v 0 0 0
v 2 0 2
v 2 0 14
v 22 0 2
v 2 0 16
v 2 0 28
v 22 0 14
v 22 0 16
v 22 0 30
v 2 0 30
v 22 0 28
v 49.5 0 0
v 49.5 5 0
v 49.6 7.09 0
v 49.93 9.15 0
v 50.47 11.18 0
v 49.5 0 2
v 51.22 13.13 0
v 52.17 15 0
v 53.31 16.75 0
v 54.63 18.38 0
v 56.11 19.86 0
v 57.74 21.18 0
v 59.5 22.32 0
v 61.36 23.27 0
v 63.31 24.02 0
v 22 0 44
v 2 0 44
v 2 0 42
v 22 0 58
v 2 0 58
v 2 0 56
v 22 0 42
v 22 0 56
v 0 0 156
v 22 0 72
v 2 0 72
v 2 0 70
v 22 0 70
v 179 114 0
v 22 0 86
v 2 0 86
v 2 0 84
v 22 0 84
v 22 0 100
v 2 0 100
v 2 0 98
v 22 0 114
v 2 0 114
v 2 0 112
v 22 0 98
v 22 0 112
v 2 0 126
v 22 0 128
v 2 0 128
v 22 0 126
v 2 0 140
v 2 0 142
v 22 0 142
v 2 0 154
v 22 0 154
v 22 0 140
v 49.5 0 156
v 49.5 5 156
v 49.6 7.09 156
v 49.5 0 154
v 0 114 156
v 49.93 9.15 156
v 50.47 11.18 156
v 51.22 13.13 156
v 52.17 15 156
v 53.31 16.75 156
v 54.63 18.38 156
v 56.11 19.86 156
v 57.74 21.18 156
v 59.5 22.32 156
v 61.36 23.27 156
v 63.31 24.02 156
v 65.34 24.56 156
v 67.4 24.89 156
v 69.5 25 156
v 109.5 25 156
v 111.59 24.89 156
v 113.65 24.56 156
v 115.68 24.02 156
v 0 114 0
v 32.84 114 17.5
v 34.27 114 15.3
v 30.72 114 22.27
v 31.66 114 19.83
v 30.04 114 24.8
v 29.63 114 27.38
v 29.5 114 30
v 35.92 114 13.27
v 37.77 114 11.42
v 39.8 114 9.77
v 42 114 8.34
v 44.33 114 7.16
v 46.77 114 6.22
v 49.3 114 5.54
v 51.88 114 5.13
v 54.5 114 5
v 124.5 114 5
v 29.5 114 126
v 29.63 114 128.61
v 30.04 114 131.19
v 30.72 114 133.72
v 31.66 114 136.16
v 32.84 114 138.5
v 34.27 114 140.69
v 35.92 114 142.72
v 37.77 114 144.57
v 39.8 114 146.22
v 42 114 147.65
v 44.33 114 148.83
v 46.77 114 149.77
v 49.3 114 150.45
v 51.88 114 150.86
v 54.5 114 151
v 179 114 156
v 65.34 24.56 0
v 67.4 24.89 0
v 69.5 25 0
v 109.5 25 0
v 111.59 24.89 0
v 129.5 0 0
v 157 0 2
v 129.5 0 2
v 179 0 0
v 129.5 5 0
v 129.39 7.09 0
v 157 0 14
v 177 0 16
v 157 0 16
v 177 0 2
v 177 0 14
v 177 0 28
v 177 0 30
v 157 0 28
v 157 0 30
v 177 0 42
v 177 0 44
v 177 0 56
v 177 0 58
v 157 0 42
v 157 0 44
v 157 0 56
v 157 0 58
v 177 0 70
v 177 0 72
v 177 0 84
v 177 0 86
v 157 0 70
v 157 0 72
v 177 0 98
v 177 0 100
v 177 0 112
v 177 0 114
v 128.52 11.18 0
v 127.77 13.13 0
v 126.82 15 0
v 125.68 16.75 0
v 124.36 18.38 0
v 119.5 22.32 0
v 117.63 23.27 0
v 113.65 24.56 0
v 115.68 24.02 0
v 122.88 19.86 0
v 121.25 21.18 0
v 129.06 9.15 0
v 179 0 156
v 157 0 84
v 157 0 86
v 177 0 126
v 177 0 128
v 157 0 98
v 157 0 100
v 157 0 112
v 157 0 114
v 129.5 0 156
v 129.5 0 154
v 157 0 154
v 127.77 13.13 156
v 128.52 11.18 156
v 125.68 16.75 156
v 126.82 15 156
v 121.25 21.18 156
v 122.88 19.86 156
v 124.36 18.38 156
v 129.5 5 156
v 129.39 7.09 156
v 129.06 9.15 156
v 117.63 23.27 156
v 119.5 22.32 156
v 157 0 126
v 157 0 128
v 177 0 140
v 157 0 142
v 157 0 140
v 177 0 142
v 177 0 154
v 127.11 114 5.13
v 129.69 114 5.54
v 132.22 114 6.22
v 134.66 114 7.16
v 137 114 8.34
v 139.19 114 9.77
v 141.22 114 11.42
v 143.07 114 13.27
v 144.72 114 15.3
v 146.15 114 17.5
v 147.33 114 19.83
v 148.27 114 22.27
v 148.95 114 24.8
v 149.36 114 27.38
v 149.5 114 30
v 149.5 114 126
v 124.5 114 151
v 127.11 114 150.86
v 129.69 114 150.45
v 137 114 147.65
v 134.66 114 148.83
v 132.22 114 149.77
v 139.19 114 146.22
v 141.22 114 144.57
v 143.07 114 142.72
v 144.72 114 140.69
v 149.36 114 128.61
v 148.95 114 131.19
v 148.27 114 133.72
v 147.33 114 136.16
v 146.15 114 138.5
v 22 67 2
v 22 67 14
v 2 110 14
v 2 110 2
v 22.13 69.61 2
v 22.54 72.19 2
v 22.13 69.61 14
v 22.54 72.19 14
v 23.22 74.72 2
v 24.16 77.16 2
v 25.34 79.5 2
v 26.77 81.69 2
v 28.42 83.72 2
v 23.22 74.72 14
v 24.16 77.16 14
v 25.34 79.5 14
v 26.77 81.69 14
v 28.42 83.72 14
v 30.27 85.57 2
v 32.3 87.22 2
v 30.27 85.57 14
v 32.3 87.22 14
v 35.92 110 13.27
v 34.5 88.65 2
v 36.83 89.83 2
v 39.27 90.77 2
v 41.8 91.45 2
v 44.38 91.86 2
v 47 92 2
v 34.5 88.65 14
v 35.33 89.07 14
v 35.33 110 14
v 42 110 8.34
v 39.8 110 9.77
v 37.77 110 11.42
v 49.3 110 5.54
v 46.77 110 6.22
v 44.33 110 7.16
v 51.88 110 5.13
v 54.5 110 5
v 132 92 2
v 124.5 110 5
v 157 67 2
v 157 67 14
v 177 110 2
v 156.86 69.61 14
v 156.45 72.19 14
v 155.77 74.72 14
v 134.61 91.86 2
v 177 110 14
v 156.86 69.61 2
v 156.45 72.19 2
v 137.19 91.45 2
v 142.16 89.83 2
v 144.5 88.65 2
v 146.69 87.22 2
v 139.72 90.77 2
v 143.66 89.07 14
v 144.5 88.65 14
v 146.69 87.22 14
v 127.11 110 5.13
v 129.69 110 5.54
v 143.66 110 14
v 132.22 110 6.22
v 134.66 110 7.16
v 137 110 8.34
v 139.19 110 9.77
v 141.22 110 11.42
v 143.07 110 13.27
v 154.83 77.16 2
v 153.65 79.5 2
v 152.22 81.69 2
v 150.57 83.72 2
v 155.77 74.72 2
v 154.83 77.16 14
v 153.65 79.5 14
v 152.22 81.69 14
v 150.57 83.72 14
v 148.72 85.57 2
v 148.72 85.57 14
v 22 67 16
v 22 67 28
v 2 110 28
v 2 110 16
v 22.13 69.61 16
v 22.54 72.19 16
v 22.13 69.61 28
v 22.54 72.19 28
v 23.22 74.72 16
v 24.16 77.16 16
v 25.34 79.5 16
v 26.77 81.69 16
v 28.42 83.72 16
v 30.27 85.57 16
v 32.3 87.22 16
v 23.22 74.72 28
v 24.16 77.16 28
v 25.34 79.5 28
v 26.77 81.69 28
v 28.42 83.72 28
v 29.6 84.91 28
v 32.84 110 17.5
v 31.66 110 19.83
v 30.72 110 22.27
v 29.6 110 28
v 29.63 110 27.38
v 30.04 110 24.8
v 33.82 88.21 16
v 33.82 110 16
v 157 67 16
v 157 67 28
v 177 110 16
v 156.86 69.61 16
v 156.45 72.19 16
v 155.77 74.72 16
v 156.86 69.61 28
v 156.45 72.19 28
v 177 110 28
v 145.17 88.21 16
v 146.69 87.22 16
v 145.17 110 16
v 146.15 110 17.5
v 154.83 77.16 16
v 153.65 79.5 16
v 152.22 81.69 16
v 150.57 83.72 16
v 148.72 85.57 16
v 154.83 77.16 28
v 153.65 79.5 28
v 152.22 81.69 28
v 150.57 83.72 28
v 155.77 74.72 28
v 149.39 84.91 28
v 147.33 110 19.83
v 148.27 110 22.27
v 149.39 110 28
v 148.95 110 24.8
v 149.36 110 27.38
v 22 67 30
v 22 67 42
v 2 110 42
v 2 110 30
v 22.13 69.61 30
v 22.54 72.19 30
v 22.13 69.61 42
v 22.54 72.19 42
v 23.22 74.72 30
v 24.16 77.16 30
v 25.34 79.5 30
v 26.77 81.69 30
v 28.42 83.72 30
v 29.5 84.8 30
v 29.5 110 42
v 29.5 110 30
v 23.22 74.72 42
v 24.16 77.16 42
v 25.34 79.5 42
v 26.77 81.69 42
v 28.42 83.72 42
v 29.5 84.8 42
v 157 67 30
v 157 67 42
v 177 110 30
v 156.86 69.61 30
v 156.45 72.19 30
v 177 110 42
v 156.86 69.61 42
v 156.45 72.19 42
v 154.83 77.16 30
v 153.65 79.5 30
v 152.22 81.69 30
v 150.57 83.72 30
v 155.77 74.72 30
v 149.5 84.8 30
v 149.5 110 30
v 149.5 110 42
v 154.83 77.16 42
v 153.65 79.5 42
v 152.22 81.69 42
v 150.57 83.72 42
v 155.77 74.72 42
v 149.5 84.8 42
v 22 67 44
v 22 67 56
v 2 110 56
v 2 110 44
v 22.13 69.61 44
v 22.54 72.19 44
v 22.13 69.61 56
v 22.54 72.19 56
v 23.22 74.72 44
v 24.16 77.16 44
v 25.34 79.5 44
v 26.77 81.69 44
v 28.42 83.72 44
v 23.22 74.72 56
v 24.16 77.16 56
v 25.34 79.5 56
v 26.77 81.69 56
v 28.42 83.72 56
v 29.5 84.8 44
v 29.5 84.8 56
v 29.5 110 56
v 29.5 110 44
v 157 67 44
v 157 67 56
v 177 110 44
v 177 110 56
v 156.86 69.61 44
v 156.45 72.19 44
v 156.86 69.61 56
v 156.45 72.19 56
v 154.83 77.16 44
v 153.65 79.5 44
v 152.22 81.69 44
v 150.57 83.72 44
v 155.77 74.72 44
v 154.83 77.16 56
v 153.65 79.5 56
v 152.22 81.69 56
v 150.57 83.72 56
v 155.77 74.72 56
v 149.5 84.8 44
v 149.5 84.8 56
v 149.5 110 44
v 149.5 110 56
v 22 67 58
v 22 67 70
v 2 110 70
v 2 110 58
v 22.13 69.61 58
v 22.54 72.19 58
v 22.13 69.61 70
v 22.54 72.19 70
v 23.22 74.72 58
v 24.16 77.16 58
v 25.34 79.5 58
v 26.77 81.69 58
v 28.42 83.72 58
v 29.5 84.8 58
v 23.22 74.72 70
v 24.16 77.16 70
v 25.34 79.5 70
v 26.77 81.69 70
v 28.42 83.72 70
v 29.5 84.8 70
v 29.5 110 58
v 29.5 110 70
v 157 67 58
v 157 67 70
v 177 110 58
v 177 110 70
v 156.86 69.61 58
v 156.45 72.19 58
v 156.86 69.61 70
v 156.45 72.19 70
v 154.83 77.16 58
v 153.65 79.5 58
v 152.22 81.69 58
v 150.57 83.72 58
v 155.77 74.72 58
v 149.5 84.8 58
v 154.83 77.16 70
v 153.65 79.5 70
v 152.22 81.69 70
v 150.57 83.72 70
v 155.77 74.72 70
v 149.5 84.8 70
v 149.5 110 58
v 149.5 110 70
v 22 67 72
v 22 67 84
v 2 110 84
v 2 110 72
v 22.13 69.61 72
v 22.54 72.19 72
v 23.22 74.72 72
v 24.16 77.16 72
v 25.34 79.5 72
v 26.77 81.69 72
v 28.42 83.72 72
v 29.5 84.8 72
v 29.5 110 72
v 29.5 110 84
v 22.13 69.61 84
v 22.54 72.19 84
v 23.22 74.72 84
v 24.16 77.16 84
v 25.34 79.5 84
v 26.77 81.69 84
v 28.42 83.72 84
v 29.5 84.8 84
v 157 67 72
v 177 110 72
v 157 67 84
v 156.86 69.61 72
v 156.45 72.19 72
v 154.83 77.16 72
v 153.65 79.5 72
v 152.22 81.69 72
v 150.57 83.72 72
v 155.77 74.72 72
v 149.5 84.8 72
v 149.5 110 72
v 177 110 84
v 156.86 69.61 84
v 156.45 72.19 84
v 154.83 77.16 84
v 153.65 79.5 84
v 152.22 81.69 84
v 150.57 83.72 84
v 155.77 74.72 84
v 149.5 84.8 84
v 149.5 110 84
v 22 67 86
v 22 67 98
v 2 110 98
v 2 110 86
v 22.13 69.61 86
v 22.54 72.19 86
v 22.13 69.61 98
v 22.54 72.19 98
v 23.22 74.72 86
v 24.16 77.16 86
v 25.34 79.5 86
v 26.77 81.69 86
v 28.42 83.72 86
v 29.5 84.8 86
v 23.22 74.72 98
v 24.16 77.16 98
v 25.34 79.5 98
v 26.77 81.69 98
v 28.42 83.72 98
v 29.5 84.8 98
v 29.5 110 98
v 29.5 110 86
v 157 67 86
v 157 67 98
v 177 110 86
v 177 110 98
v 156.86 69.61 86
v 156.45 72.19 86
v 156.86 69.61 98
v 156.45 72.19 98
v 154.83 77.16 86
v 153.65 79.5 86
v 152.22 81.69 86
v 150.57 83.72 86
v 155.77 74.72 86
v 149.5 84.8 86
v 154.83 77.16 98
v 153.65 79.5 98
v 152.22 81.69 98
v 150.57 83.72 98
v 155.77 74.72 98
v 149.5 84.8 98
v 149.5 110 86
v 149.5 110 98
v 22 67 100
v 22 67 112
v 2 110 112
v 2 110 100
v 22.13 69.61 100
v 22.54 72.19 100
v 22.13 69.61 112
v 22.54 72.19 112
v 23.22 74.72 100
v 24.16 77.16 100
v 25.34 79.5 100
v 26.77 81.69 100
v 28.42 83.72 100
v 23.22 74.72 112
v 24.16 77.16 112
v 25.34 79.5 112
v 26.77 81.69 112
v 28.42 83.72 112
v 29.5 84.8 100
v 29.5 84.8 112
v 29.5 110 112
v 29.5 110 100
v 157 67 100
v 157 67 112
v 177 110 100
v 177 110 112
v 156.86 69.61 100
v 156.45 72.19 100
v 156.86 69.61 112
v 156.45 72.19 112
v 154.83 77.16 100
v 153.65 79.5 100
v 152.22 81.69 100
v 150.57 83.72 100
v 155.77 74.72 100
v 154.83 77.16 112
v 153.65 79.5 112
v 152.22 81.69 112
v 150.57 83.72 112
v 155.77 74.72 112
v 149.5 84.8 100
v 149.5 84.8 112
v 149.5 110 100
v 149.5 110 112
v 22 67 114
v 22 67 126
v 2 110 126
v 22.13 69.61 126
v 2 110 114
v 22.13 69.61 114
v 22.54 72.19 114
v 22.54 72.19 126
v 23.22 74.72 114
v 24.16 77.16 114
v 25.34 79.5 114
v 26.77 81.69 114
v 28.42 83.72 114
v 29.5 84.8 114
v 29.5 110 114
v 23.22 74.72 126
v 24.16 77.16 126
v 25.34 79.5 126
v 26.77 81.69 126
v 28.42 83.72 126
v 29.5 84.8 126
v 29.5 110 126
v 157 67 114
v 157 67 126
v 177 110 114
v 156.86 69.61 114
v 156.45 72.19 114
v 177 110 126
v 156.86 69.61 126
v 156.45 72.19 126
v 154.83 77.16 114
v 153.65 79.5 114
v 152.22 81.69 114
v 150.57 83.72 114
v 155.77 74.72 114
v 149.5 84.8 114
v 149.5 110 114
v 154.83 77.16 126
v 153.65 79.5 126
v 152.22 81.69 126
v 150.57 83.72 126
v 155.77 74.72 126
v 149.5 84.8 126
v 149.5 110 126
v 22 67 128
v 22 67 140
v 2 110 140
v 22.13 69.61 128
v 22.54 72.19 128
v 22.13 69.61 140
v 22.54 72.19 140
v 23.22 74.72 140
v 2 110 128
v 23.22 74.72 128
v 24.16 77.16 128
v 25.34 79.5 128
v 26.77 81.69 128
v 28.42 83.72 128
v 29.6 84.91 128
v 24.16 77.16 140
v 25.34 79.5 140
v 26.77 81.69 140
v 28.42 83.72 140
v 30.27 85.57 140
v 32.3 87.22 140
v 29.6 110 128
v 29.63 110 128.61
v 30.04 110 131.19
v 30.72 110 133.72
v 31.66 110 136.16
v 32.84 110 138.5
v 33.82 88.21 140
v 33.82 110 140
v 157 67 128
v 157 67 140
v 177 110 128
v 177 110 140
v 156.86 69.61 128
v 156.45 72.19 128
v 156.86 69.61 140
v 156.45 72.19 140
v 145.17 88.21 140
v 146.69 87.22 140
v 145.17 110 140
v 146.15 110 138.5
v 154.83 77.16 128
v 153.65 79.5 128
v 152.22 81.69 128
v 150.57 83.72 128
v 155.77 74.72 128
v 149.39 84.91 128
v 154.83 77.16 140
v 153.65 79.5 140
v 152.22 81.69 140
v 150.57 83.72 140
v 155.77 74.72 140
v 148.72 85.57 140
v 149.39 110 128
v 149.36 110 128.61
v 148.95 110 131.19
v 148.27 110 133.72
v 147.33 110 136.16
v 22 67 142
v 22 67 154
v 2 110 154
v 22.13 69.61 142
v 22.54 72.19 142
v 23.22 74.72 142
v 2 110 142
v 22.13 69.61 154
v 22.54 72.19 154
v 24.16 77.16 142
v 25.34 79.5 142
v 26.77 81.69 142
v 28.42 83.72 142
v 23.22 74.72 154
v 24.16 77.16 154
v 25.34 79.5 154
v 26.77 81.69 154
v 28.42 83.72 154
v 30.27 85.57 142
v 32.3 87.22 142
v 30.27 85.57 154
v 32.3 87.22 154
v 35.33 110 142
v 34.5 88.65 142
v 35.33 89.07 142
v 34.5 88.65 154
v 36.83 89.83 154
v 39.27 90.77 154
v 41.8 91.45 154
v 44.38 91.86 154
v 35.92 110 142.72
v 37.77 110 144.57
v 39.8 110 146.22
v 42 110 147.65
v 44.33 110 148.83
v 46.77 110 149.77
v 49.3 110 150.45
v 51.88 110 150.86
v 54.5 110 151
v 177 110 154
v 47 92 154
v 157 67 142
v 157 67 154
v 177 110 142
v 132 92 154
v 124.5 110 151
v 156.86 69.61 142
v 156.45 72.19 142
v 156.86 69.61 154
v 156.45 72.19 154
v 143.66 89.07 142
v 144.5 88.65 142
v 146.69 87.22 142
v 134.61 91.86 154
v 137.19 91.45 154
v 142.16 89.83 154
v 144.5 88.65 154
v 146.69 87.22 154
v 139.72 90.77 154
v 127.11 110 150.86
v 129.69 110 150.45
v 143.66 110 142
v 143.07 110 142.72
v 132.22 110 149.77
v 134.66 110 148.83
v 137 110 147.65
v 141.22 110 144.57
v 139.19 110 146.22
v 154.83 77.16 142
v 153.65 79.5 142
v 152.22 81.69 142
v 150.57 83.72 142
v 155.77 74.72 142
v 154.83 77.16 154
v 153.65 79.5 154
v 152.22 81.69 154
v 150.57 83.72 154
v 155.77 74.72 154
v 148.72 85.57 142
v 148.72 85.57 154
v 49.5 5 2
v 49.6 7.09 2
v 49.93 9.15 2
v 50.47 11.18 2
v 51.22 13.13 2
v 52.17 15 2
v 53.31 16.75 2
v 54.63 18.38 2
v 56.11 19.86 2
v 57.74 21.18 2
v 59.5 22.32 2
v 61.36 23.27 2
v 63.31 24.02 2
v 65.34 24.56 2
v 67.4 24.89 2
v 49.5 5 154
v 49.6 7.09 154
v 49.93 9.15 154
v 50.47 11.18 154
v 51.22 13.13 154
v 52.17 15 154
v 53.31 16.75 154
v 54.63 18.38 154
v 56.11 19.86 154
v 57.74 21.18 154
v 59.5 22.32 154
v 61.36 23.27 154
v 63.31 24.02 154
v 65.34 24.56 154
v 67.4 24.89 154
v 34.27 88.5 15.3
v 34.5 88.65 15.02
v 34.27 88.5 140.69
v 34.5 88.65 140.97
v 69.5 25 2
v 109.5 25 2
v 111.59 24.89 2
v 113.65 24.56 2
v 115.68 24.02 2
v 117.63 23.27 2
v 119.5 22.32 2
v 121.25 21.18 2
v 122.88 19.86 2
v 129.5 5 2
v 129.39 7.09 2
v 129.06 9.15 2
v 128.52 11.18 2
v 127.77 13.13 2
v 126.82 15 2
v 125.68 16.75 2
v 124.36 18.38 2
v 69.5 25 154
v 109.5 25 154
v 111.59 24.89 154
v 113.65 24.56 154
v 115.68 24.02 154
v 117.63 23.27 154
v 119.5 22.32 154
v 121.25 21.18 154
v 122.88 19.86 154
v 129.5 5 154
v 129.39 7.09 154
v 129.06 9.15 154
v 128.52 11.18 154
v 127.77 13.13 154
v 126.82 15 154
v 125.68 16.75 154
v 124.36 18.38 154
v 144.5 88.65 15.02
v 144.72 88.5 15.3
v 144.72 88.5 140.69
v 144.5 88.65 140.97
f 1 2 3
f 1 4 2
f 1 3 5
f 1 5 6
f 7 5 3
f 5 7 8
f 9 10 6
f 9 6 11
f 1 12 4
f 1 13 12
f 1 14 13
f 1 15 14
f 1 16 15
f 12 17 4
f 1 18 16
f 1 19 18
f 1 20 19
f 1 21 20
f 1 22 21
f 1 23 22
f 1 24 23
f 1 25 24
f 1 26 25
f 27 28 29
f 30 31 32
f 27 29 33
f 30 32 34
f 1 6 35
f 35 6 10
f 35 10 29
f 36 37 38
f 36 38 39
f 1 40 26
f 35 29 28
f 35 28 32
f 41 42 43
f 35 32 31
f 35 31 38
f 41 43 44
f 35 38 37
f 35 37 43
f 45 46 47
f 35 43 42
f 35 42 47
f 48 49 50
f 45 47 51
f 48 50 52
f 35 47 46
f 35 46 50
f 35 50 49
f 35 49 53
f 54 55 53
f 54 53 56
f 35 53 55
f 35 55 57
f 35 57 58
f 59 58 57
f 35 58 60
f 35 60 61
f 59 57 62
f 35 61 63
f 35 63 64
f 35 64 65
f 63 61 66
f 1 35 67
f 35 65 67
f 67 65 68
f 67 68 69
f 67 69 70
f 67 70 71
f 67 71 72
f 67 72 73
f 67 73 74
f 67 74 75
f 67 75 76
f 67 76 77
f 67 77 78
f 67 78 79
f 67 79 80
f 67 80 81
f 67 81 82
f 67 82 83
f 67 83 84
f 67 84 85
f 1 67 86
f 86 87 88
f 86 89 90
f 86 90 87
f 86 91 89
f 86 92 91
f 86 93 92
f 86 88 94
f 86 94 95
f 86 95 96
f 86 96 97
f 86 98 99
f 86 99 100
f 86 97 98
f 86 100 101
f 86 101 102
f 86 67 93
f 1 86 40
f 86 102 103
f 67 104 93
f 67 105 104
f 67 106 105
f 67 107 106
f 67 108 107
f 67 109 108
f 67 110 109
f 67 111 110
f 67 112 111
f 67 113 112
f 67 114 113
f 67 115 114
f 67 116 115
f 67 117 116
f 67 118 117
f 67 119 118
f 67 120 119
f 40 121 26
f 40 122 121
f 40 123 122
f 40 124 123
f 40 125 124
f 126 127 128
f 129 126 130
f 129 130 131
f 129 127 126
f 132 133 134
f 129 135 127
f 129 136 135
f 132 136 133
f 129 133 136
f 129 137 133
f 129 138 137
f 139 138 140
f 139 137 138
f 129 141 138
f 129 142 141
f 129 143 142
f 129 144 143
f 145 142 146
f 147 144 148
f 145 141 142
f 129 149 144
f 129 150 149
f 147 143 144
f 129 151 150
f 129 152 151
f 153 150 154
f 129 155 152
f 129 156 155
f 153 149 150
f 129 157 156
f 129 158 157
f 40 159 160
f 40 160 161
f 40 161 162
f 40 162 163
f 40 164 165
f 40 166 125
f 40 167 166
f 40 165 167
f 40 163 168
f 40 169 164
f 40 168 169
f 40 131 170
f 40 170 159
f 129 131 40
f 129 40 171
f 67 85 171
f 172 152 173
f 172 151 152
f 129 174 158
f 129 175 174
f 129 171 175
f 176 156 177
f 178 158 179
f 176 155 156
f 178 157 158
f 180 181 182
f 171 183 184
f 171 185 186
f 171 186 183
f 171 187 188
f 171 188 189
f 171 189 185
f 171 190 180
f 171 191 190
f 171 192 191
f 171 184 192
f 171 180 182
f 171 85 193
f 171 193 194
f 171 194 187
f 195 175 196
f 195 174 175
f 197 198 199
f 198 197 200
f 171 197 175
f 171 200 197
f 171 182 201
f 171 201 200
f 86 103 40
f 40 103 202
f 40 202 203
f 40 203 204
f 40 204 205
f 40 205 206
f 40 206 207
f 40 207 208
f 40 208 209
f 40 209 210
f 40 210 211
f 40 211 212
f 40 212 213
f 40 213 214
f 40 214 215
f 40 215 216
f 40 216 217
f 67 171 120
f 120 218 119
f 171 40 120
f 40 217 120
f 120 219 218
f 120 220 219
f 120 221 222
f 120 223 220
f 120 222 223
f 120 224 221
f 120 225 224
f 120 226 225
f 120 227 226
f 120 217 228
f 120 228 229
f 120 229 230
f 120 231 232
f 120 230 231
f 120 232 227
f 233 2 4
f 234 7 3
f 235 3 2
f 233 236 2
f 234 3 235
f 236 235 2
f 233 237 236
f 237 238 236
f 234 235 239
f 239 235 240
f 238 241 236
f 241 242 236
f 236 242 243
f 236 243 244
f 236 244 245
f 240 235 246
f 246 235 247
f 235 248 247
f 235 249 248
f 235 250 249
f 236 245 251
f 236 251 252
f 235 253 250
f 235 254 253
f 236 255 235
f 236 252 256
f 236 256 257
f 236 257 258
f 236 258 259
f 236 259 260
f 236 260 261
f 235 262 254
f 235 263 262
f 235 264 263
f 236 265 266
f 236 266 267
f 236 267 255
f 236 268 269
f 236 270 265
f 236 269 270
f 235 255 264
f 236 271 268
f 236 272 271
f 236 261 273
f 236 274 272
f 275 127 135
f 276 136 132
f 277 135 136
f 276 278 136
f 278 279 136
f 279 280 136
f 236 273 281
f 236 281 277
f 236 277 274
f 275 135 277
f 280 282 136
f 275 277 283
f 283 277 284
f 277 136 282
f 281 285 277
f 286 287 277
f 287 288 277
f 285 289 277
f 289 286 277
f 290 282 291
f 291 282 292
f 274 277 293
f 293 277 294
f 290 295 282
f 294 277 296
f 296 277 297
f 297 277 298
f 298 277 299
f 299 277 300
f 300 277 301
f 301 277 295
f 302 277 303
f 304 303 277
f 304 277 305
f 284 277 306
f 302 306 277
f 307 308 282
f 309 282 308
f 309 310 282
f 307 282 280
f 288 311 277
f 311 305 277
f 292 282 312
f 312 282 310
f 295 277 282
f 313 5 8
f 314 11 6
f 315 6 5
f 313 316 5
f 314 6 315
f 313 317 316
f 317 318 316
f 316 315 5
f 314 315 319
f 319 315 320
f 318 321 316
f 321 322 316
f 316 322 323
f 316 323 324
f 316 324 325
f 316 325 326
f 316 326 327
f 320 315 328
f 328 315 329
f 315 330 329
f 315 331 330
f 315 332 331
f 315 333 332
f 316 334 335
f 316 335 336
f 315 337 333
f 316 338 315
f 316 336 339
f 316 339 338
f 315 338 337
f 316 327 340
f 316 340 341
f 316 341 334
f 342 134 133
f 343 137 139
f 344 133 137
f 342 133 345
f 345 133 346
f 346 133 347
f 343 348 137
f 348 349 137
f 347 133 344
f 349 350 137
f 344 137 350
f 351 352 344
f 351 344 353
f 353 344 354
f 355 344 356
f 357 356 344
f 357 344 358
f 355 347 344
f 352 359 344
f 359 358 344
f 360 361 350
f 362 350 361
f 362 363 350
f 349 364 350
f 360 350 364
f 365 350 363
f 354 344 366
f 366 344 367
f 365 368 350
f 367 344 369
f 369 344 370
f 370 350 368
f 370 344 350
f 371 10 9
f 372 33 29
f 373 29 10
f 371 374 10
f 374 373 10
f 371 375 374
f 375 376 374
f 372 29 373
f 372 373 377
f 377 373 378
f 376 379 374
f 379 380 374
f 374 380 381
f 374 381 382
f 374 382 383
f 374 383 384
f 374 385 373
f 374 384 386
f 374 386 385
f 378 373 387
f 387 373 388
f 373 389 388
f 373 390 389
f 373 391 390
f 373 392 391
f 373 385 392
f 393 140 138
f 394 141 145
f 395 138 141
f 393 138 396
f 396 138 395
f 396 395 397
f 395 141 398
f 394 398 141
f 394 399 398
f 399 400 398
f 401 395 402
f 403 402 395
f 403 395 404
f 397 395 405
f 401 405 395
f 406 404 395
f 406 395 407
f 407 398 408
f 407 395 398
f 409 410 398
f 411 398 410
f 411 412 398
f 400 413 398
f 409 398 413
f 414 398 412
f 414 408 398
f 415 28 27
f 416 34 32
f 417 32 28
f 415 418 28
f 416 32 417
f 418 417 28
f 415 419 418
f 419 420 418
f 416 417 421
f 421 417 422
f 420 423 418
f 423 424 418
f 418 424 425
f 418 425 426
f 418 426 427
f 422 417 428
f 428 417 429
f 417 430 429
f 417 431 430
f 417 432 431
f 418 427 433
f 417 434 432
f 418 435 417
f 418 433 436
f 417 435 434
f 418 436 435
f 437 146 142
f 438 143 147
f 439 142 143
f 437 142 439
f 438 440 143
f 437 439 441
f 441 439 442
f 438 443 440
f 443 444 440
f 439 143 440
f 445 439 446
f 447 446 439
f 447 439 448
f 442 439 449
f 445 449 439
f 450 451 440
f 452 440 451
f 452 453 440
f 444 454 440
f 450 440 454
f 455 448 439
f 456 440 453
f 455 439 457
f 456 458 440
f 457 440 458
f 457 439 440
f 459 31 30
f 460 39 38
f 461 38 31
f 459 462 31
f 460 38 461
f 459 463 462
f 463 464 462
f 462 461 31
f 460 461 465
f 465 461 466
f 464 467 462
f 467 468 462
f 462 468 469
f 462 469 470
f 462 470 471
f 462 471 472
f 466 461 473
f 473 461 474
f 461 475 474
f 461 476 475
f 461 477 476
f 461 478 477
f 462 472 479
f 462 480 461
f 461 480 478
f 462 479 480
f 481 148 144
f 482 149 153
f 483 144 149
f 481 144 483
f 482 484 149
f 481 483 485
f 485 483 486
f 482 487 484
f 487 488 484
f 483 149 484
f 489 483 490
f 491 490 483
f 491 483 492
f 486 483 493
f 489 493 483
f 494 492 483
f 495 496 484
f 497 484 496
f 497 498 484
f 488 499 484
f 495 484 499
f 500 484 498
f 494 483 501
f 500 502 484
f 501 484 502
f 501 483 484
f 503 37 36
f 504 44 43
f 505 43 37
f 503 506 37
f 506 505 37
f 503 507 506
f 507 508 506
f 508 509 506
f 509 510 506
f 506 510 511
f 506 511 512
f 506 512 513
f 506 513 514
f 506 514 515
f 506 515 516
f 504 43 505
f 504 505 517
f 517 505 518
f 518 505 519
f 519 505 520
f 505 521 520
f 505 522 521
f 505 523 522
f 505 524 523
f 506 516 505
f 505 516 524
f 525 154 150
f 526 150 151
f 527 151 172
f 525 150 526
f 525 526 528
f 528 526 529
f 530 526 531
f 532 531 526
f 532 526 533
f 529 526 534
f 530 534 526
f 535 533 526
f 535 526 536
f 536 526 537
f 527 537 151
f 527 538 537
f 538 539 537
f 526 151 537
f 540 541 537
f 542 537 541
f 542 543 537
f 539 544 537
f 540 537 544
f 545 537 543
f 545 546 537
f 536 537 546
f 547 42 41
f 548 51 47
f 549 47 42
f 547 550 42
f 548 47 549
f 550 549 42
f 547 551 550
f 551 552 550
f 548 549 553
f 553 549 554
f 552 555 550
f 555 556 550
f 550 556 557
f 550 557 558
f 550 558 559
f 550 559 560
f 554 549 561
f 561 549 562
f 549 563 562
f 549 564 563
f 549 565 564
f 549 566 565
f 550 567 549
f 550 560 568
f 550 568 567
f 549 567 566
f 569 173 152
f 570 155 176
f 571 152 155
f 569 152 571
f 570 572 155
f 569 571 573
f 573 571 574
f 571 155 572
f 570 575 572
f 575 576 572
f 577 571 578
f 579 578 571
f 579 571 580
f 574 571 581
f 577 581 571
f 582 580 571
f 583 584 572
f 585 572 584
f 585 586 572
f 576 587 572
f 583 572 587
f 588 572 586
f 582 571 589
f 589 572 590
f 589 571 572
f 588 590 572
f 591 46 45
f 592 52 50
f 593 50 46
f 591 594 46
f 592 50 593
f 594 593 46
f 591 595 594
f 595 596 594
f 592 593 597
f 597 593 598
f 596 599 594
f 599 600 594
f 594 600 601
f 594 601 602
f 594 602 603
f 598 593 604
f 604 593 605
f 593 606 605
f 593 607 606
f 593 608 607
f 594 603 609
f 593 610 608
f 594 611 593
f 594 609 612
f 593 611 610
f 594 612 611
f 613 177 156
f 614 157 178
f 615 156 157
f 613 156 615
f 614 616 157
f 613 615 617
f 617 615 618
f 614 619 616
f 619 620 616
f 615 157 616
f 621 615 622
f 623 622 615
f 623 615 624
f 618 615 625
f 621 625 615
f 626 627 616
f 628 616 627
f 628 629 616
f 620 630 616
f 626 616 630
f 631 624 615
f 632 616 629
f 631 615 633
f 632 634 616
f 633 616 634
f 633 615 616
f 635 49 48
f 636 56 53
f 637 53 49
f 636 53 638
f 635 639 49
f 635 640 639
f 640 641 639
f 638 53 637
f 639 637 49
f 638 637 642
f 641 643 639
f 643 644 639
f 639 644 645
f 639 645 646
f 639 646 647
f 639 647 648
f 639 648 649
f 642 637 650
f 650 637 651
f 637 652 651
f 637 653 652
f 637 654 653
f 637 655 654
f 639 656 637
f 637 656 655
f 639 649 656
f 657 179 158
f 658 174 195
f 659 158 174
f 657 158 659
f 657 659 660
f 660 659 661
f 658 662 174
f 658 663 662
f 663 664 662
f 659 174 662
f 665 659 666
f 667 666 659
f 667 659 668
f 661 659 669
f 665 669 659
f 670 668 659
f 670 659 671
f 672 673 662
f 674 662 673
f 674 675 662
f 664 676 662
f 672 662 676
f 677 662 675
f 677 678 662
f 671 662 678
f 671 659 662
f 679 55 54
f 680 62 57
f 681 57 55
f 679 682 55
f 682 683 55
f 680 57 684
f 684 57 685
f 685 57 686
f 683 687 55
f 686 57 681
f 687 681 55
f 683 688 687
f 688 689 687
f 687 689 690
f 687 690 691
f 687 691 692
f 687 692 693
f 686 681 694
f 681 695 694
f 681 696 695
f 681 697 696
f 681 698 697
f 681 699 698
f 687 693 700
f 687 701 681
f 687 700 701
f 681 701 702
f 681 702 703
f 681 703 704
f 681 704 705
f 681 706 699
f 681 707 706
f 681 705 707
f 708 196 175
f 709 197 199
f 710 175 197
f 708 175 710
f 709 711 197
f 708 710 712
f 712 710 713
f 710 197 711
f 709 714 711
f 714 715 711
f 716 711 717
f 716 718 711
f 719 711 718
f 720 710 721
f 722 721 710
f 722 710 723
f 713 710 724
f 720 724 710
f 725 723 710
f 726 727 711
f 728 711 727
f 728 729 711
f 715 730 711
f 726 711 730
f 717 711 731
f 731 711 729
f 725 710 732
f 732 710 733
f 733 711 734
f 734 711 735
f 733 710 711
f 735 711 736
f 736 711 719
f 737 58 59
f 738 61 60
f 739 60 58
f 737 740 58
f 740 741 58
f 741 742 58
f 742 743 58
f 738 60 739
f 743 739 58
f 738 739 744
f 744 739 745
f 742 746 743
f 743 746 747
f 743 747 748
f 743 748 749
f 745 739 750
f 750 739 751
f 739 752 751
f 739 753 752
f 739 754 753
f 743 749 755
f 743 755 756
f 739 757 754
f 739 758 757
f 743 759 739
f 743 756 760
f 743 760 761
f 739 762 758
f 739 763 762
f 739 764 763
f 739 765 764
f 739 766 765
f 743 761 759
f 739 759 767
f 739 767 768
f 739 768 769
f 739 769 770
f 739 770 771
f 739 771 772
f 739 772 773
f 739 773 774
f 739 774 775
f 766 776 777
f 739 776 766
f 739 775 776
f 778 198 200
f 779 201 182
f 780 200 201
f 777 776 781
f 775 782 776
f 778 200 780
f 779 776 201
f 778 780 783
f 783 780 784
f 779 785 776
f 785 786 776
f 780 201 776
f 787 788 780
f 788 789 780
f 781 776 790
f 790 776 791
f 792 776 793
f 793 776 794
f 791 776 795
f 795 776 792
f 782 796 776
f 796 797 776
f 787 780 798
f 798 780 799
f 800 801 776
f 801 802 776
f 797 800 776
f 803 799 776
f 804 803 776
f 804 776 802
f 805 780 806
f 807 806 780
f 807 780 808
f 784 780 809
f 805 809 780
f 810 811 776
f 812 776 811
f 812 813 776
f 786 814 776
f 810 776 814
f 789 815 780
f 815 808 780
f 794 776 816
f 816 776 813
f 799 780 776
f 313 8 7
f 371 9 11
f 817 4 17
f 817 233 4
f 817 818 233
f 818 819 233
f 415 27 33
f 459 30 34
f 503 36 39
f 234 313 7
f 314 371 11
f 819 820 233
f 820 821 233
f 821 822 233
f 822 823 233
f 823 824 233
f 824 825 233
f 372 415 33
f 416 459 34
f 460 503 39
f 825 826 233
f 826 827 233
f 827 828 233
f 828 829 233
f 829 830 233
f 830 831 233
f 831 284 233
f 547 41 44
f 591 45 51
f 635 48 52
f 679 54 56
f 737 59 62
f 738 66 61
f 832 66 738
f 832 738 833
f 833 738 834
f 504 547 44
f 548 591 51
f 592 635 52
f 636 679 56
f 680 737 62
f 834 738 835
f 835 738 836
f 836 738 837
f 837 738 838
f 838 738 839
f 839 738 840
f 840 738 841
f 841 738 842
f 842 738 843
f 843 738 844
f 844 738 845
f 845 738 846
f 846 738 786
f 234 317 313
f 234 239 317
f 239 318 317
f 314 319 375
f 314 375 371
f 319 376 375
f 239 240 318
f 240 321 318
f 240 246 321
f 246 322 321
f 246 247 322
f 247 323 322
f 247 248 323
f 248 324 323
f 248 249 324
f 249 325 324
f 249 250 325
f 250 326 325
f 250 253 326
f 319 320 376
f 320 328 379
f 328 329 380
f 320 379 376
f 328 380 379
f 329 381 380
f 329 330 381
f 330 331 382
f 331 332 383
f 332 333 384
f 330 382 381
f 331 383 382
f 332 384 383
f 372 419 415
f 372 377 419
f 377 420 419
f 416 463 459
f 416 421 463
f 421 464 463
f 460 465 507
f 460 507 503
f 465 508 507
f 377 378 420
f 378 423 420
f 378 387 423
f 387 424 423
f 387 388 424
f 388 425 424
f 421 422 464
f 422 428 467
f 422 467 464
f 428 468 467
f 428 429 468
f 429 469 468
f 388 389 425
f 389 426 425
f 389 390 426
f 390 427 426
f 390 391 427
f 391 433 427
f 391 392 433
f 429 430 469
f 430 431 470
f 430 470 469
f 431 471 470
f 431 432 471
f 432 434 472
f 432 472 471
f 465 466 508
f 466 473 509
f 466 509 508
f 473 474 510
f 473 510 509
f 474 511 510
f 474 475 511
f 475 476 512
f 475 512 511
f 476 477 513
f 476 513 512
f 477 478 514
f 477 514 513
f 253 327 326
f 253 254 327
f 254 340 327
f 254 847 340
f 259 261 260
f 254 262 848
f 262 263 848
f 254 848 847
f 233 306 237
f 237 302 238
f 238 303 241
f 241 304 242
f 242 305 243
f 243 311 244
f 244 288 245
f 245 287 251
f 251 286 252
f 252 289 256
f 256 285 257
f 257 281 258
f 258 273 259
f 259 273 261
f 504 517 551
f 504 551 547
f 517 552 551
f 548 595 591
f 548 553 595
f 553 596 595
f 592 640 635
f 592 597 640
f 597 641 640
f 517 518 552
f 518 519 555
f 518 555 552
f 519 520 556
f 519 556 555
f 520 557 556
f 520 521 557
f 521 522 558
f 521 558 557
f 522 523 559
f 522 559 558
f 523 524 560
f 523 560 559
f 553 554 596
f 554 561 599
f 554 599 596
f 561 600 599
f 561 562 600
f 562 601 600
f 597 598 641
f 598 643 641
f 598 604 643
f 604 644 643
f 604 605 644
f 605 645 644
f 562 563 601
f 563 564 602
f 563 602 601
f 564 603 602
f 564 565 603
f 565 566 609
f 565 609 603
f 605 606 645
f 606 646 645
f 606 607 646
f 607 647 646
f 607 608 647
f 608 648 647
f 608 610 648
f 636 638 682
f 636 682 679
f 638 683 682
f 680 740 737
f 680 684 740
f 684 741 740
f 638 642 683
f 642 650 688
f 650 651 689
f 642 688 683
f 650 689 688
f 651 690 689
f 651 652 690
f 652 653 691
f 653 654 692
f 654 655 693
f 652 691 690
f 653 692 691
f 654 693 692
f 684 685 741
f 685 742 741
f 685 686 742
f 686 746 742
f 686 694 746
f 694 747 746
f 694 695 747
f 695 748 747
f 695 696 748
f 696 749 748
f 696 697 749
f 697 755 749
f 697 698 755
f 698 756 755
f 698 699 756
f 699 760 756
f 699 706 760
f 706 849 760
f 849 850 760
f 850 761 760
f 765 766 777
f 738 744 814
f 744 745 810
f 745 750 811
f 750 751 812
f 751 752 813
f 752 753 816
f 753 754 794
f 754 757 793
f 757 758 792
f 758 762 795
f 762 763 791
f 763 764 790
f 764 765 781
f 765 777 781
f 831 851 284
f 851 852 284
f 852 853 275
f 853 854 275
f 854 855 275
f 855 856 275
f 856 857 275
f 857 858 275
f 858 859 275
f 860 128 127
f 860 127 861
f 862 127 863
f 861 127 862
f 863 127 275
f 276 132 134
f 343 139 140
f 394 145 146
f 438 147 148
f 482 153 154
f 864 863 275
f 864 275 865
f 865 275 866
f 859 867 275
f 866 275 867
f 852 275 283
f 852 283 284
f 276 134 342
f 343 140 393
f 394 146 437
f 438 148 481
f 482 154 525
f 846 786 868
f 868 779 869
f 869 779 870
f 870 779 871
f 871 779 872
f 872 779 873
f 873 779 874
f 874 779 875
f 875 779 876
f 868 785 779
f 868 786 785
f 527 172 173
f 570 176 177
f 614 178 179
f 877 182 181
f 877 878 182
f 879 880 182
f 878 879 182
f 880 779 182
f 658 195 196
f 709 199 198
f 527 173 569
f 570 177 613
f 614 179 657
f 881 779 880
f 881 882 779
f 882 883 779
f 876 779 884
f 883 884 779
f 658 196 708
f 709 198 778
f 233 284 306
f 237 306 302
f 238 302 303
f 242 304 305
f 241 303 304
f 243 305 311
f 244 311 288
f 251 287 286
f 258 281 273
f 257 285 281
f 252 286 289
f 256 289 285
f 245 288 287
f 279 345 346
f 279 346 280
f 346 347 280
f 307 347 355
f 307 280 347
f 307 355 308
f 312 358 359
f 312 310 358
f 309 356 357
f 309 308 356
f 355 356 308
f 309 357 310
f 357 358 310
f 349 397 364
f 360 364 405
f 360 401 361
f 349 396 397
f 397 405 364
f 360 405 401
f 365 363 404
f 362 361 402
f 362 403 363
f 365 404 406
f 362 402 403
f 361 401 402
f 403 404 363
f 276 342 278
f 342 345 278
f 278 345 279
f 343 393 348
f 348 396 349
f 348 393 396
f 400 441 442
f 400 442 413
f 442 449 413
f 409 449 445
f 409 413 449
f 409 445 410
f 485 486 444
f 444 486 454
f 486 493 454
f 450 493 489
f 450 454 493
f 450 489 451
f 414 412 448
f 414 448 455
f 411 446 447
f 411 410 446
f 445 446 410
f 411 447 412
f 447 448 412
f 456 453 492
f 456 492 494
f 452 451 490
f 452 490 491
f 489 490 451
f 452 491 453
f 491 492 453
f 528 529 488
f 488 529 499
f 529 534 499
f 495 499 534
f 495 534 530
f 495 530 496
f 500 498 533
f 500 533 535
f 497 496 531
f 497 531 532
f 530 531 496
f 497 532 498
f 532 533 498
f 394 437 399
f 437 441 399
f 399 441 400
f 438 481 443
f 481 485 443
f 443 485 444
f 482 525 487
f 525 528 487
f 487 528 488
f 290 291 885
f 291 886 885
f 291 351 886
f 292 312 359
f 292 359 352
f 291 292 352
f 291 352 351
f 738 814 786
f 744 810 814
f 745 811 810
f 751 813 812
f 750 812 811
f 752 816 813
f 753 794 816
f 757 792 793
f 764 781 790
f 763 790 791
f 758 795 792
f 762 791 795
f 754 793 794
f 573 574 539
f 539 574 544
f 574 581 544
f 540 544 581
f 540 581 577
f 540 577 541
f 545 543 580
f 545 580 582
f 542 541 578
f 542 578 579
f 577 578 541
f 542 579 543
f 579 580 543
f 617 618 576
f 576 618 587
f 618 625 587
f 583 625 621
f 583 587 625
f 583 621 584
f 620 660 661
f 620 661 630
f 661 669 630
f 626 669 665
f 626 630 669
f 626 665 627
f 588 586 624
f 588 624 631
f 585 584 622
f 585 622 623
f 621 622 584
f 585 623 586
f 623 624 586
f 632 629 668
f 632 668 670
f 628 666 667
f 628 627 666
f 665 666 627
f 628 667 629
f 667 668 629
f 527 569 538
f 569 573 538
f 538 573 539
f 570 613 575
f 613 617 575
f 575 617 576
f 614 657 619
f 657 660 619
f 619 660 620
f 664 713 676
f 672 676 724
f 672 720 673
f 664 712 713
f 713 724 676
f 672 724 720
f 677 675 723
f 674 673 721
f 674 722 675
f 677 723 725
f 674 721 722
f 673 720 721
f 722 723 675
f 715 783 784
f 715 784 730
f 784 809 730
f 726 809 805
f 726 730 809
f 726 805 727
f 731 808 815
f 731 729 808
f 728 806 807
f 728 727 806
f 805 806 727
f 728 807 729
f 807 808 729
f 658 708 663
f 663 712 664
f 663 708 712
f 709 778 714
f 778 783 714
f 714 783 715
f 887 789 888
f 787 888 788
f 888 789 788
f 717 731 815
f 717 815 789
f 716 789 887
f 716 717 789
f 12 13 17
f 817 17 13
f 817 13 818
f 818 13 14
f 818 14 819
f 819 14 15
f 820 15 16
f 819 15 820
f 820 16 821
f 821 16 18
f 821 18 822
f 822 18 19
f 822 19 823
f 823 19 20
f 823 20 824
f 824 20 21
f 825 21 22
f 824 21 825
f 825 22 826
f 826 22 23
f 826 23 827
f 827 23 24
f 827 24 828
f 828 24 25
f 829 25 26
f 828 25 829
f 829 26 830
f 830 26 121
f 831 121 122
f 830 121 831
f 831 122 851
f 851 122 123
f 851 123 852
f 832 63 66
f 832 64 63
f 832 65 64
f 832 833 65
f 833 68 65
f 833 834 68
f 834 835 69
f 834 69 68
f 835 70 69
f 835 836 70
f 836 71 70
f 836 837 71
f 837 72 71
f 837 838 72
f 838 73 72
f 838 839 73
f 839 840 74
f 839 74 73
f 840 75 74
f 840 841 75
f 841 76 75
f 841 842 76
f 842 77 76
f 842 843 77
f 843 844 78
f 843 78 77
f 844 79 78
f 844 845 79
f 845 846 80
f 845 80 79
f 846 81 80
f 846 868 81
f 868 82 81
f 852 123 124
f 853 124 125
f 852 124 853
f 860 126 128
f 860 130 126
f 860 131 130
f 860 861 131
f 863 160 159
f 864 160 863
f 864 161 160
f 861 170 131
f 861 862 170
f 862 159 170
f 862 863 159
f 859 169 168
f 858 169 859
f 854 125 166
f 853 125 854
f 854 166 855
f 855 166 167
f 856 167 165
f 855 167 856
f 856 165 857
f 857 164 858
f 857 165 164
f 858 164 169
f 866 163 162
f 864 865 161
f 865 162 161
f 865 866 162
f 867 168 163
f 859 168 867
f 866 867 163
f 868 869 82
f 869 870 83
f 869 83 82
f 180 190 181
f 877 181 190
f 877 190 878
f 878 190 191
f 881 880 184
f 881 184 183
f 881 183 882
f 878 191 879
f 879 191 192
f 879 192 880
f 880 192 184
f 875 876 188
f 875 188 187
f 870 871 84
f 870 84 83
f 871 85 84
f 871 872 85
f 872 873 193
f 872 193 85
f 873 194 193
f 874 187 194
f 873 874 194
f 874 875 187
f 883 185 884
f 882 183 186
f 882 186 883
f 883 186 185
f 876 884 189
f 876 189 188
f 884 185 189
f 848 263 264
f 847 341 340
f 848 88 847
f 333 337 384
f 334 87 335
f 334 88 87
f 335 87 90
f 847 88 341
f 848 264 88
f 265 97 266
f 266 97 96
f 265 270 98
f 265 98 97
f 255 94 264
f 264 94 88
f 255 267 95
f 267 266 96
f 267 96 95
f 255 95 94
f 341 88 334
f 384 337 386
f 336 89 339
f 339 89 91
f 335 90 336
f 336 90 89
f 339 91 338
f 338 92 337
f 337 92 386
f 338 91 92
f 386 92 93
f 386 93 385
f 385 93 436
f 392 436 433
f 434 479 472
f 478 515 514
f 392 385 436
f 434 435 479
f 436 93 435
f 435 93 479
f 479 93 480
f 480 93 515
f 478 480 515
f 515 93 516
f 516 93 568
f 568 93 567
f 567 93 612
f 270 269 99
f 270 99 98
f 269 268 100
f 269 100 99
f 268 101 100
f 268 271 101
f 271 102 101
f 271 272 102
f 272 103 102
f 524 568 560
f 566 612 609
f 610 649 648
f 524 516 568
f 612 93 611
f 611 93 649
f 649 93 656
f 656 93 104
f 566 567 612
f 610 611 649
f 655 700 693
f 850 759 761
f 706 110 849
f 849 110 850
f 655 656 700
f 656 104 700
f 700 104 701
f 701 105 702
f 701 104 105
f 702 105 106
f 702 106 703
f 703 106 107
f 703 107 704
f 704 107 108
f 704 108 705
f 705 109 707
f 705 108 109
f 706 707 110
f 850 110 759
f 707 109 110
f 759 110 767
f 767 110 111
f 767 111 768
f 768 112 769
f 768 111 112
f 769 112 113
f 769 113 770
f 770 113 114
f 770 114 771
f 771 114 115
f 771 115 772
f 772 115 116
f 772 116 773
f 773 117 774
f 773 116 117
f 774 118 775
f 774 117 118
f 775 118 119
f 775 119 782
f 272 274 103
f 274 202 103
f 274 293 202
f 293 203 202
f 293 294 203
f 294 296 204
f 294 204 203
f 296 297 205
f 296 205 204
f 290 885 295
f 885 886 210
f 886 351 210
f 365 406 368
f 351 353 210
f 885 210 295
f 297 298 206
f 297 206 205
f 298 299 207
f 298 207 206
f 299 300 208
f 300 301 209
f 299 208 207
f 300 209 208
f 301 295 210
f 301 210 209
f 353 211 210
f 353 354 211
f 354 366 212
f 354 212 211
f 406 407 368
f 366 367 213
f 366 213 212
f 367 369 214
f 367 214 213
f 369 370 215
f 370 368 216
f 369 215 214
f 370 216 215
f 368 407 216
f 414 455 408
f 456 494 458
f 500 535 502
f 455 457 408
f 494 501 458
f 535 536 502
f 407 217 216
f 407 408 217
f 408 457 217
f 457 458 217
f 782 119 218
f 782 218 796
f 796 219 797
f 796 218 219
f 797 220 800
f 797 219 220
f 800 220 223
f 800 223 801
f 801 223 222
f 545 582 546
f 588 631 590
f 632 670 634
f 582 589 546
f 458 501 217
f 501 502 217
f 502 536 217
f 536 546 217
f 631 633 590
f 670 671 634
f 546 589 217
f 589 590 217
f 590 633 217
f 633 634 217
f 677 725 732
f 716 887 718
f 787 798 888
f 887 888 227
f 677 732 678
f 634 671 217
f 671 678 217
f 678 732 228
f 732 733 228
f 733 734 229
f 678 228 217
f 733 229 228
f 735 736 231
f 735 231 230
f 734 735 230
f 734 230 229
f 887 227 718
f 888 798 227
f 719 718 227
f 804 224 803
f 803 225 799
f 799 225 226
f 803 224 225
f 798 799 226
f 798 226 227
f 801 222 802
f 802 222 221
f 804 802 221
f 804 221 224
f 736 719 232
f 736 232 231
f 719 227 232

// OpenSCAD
// file: rounded_rect.scad
// module for a rounded rectangle
// 14.11.2025
// Sebastian Weigl

module rr(l, w, r, h)
{
linear_extrude(height = h, center = false, convexity = 0)
  translate([r, r, 0])
  offset(r=r, $fn = 60) 
  square([l-(2*r), w-(2*r)]);
}

// to use this add
// use <rounded_rect.scad>
// and 
// rr(x_length,y_length,radius,height);
// main file
// simple stand for
// nintendo switch games
// version 1
// 08.04.2026 Sebastian Weigl

// // rr(x_length,y_length,radius,height);
$fn=64;
include <rounded_rect.scad>

border = 2;

difference(){
// outer form
cube([179,114,156],false);
// box form 1
translate([border,0,border])
cube([175,110,12],false);
// box form 2
translate([border,0,16])
cube([175,110,12],false);
// box form 3
translate([border,0,30])
cube([175,110,12],false);
// box form 4
translate([border,0,44])
cube([175,110,12],false);
// box form 5
translate([border,0,58])
cube([175,110,12],false);
// box form 6
translate([border,0,72])
cube([175,110,12],false);
// box form 7
translate([border,0,86])
cube([175,110,12],false);
// box form 8
translate([border,0,100])
cube([175,110,12],false);
// box form 9
translate([border,0,114])
cube([175,110,12],false);
// box form 10
translate([border,0,128])
cube([175,110,12],false);
// box form 11
translate([border,0,142])
cube([175,110,12],false);
// inner form
translate([22,-58,2])
rr(135,150,25,152);
// grip form
translate([49.5,-25,0])
rr(80,50,20,156);
// cutout back
translate([29.5,116,5])
rotate([90,0,0])
rr(120,146,25,35);
}
